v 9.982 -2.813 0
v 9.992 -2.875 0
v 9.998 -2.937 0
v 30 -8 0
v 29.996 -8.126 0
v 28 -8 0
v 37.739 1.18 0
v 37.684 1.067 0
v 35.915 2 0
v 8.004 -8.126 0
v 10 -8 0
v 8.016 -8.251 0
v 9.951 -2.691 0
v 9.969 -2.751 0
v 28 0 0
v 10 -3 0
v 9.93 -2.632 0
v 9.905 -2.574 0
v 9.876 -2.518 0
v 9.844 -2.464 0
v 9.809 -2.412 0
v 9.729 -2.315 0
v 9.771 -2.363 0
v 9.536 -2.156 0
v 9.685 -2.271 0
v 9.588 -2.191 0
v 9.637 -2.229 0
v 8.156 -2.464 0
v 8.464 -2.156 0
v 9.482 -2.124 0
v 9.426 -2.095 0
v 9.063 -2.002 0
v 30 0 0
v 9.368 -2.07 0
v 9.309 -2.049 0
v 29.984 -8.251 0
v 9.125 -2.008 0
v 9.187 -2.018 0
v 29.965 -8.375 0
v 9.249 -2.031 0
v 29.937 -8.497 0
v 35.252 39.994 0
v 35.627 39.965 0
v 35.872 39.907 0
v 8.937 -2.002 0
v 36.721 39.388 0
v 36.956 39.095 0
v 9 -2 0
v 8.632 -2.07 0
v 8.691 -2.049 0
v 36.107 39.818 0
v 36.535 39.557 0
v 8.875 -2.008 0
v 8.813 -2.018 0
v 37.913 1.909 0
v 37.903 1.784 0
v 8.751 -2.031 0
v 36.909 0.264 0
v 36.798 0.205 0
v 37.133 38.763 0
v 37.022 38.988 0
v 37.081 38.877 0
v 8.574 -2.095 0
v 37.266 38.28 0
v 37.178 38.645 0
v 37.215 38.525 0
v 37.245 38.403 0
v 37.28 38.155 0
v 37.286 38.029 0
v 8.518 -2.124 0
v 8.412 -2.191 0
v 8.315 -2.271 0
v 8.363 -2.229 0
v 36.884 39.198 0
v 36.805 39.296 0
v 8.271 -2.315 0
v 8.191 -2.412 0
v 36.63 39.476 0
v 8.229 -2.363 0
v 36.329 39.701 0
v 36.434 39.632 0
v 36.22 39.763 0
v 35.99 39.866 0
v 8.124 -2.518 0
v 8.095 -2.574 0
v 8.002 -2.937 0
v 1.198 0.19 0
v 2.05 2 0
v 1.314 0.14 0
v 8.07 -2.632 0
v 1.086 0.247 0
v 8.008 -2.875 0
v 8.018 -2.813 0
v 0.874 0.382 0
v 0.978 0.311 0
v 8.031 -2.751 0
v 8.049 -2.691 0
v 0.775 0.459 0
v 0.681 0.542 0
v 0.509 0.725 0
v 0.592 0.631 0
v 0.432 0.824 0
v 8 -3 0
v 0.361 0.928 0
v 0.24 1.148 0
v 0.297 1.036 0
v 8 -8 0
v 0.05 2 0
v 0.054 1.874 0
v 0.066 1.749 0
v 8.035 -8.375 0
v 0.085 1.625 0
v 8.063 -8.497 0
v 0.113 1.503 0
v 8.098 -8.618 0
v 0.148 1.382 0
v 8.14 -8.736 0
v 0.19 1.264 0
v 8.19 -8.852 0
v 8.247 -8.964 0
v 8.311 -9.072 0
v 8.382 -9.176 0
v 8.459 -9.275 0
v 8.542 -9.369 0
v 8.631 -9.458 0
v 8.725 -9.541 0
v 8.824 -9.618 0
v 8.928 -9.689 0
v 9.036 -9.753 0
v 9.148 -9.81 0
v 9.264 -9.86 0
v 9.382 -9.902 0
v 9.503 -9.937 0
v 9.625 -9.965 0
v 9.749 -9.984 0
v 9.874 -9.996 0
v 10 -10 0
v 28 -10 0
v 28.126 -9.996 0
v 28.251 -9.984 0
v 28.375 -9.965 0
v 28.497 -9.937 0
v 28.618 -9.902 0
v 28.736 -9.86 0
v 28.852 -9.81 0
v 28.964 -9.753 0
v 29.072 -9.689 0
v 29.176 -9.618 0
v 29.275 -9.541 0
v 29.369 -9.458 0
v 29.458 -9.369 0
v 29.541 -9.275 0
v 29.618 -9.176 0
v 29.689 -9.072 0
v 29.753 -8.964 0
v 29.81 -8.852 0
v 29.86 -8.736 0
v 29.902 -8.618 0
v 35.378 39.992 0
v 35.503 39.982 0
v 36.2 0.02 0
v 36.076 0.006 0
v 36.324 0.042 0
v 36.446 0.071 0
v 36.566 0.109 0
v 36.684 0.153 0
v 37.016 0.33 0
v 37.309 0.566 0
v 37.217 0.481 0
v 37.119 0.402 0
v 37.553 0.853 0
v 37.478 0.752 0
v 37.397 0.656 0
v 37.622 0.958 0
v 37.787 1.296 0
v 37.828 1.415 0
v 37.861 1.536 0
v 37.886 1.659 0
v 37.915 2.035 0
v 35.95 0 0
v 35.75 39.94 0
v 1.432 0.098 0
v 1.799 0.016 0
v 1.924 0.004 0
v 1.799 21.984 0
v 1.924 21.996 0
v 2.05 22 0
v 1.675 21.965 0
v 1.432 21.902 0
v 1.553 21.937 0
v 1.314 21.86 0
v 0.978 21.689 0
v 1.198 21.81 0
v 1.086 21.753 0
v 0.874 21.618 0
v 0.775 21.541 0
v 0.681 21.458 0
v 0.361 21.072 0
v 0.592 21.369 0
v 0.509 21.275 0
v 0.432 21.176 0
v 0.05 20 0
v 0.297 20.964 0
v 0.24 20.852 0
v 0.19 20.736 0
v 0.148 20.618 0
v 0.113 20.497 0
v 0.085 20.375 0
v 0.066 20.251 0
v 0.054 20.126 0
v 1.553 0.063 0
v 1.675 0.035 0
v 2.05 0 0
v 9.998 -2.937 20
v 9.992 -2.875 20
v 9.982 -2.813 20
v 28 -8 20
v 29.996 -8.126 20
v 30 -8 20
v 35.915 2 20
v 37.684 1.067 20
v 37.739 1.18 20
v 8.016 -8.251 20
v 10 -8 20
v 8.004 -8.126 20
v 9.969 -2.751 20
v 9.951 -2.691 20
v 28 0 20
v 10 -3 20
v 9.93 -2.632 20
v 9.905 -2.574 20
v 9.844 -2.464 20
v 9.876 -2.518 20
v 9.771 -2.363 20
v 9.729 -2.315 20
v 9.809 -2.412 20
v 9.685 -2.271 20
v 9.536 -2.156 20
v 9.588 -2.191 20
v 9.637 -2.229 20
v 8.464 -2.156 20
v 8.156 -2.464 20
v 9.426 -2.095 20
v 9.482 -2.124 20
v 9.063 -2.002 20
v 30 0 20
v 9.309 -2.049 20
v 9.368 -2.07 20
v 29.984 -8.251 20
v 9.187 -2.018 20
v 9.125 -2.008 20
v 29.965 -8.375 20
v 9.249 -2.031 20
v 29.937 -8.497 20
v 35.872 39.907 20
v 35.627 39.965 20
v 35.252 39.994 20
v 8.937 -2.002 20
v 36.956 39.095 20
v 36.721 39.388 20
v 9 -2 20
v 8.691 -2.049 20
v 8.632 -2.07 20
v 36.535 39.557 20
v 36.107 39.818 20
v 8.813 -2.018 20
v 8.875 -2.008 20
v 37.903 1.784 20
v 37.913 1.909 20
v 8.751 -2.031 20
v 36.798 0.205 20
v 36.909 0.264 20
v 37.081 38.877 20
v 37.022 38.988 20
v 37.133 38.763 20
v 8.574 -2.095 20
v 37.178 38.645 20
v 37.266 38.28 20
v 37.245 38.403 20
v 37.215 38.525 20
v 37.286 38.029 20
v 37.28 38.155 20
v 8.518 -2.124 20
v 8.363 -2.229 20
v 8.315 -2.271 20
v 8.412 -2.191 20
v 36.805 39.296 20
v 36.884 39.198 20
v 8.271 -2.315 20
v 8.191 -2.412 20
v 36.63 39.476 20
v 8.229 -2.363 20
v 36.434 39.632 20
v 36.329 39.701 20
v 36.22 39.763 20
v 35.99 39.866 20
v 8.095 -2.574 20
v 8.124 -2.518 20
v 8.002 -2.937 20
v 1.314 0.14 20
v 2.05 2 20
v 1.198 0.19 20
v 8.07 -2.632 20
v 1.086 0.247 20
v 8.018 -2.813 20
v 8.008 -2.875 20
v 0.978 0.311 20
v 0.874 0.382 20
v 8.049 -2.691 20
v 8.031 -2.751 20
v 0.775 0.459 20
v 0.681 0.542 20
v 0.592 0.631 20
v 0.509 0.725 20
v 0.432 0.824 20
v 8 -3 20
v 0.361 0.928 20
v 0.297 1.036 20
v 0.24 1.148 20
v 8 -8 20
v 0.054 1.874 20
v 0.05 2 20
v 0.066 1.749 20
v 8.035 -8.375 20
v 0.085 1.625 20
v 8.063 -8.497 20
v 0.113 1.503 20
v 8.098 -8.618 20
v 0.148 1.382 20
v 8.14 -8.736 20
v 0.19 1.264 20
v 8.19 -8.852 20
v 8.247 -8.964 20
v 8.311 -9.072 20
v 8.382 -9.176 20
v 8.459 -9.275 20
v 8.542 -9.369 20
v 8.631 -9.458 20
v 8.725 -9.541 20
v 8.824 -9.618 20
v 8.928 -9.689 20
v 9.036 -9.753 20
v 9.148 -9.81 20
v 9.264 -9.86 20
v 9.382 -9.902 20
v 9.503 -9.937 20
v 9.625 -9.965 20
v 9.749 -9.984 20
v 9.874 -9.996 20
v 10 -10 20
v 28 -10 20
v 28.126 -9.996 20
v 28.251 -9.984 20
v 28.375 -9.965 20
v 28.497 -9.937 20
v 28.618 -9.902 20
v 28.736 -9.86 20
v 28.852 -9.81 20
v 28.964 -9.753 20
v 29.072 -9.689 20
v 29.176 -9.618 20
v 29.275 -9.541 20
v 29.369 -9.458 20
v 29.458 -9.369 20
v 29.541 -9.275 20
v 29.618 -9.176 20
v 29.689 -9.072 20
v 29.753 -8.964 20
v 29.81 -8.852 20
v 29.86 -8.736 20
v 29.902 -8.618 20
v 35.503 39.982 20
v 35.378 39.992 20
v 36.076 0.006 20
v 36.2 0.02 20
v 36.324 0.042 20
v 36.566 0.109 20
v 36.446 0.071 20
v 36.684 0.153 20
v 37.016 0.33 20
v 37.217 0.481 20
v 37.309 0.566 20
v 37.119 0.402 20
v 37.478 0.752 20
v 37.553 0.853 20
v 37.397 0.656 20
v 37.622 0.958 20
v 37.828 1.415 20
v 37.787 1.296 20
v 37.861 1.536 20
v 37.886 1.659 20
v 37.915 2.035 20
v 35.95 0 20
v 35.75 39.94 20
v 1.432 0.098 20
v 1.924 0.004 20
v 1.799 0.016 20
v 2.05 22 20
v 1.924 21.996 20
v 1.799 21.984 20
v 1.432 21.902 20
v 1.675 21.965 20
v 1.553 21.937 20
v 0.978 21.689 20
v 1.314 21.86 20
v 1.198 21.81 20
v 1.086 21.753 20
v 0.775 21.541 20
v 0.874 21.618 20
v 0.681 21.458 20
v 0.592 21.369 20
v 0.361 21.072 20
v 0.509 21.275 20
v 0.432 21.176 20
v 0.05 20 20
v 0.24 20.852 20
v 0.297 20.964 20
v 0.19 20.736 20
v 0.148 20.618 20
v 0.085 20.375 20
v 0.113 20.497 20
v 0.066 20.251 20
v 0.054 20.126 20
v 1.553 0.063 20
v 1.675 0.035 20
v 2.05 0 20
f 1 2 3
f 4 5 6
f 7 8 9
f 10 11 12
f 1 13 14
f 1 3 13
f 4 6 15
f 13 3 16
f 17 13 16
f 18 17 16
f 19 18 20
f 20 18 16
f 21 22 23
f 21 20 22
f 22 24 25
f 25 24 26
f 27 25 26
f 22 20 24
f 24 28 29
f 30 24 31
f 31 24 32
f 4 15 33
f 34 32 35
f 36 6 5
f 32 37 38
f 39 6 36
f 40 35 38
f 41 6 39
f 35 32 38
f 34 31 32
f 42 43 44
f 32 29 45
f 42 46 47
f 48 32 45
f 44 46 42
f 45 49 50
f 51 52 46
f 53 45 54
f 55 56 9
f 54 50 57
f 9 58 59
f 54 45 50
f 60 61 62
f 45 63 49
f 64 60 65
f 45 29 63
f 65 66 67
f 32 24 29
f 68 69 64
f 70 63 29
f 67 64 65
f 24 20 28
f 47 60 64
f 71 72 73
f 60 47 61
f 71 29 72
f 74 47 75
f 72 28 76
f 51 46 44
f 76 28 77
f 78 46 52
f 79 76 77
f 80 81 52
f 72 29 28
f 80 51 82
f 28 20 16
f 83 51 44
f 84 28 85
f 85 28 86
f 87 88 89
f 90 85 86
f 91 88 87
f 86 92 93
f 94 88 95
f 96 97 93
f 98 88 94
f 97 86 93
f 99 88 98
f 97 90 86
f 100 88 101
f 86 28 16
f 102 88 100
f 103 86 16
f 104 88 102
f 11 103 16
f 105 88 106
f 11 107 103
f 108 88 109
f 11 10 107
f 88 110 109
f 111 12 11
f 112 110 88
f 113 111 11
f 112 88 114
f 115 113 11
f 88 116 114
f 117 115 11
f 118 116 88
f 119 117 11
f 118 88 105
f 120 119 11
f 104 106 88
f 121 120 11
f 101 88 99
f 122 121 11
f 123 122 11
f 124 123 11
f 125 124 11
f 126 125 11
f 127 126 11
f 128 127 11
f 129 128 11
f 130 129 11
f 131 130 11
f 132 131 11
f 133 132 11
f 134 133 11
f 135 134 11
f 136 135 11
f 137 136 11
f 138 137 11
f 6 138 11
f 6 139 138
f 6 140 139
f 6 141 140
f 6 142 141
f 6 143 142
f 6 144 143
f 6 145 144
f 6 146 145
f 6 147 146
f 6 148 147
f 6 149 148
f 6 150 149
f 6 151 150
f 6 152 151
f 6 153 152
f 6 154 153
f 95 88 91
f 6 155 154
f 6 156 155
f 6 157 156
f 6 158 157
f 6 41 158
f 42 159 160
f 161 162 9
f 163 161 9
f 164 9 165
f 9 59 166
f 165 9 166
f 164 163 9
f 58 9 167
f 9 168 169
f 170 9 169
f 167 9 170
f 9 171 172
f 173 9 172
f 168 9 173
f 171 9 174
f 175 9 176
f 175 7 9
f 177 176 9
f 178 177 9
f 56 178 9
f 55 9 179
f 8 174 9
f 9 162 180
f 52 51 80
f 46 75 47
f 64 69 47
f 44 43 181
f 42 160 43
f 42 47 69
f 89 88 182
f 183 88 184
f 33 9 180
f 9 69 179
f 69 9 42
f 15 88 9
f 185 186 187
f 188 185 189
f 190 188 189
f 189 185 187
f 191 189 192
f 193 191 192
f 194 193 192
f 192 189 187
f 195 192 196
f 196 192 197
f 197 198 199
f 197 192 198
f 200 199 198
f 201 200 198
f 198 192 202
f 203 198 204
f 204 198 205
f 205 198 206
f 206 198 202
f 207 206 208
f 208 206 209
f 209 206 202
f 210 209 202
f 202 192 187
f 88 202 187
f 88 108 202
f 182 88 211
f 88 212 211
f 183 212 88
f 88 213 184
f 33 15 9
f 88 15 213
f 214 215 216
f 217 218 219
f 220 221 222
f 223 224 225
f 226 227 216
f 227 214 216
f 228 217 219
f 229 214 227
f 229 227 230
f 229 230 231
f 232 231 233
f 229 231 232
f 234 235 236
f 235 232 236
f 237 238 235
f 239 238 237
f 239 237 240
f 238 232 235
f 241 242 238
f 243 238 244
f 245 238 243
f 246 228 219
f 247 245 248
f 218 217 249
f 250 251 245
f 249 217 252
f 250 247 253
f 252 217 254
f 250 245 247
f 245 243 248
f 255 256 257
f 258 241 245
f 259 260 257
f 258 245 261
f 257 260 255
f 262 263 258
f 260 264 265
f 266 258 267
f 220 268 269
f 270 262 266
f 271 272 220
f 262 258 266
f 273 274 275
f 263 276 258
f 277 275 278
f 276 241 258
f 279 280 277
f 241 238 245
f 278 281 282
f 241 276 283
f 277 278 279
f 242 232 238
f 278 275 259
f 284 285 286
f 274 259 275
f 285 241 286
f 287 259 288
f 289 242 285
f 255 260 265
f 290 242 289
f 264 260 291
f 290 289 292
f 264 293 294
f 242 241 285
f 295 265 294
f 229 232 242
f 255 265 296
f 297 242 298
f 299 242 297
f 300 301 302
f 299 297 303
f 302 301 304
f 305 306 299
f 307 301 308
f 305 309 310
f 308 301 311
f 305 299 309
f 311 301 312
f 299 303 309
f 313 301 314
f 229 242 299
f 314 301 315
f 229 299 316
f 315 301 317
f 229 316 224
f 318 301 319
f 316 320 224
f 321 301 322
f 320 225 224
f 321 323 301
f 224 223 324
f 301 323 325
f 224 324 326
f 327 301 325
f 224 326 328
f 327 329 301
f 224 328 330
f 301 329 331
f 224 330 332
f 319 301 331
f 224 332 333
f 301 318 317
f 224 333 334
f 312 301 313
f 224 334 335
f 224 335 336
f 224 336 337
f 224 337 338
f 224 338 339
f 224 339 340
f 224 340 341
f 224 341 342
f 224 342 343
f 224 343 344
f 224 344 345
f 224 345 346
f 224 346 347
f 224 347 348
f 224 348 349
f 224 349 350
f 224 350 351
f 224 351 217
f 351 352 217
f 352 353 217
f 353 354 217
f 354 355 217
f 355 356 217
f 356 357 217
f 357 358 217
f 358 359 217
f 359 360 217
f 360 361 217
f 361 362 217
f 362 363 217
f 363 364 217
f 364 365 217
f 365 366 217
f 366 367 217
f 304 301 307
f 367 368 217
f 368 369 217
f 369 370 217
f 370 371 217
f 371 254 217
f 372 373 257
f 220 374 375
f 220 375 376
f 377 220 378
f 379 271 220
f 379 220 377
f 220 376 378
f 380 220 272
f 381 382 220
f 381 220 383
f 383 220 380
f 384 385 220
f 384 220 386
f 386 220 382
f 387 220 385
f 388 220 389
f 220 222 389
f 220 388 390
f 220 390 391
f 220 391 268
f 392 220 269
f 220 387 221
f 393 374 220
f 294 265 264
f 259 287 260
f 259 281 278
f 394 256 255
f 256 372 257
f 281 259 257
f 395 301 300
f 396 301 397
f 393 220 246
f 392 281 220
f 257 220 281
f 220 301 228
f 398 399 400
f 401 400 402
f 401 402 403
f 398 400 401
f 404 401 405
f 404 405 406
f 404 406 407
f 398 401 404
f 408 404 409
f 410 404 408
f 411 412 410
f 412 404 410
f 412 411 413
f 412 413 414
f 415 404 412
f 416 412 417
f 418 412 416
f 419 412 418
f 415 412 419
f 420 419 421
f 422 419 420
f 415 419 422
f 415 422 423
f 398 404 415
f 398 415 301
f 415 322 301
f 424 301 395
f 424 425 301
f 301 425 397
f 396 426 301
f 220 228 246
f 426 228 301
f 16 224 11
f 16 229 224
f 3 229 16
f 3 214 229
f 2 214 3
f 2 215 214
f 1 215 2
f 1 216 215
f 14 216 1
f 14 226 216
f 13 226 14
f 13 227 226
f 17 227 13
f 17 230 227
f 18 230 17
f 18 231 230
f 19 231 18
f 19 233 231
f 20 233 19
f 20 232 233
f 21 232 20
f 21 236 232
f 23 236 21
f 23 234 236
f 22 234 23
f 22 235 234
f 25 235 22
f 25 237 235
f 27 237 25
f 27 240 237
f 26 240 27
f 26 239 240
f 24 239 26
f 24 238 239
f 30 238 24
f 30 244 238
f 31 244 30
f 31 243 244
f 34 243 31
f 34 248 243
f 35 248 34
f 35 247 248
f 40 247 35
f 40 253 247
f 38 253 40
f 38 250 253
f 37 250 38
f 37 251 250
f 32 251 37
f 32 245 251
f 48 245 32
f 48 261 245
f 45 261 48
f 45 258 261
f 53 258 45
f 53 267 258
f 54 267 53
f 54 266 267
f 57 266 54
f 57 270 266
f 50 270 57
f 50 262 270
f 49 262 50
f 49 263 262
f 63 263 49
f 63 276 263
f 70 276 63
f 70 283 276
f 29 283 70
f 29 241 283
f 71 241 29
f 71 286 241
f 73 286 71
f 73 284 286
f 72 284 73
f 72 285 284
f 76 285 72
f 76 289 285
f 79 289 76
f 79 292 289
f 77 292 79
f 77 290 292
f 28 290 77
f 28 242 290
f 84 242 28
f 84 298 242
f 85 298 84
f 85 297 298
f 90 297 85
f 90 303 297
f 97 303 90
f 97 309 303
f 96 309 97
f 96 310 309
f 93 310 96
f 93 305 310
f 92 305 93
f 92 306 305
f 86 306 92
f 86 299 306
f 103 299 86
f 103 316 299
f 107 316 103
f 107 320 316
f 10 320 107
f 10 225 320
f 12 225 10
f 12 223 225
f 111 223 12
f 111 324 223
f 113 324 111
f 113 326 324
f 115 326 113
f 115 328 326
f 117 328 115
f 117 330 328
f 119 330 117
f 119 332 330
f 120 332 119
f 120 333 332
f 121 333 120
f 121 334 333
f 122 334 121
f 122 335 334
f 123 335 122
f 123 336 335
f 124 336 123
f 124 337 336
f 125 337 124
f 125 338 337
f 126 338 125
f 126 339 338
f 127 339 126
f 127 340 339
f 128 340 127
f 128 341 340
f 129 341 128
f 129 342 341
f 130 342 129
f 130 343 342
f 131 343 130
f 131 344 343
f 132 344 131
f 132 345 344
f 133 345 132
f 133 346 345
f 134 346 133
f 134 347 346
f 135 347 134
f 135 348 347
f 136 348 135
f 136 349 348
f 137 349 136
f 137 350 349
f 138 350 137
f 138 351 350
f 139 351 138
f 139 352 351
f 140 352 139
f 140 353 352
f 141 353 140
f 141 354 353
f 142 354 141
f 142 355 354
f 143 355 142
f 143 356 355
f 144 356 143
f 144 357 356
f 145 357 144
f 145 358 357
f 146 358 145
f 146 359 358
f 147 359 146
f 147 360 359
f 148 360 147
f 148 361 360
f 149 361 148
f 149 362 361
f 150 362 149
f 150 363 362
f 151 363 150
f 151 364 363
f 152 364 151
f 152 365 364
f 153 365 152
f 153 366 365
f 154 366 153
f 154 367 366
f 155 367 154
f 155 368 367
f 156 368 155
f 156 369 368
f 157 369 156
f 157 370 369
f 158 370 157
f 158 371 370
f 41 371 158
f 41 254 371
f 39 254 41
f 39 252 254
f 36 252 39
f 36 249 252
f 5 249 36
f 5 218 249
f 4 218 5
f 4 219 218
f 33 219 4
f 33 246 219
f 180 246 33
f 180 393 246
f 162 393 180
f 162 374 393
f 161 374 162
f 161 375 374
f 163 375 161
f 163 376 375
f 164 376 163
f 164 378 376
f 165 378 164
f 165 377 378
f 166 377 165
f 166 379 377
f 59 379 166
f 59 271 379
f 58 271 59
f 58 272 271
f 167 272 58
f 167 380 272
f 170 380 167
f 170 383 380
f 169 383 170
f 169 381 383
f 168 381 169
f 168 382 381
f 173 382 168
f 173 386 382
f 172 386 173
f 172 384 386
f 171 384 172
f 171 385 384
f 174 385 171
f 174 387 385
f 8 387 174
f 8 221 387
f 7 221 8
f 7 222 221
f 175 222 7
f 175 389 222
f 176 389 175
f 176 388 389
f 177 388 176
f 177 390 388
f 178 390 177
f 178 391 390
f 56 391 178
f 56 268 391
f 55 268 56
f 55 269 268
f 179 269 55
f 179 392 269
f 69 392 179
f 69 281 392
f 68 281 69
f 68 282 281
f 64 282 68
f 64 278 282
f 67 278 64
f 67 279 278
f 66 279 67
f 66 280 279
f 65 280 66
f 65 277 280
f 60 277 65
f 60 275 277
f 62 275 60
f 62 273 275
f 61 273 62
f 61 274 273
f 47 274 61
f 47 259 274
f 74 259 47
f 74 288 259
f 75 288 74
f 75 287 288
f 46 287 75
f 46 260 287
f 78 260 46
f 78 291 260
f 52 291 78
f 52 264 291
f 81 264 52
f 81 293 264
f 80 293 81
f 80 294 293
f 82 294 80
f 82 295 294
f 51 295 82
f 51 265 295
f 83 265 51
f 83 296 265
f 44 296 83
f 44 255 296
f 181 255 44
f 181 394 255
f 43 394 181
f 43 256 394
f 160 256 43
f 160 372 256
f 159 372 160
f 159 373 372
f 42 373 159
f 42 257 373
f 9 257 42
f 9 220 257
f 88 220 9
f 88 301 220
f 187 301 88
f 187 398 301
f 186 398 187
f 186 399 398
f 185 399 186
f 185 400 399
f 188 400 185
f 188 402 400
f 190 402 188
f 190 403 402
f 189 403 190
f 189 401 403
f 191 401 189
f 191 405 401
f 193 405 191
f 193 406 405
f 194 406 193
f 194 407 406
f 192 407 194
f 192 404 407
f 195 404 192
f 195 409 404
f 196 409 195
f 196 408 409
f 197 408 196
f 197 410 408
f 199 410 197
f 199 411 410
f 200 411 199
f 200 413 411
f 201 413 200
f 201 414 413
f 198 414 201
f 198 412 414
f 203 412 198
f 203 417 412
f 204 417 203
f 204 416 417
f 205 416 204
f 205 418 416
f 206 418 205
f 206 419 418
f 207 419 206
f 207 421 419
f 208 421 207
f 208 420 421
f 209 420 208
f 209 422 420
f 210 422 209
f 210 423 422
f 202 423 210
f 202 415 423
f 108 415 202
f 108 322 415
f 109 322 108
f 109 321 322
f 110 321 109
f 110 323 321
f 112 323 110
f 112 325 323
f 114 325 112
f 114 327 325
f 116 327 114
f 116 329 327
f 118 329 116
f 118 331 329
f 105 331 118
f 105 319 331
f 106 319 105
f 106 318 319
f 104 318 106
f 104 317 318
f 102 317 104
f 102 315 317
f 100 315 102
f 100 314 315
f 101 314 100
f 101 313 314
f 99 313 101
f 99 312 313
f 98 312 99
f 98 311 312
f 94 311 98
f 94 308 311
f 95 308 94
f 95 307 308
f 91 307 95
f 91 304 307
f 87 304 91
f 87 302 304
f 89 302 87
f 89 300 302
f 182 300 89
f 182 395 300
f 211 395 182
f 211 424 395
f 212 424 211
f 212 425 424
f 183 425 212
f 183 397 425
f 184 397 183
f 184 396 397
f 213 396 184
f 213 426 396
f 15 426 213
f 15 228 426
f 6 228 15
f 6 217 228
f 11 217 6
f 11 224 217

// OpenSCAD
// file: base.scad
// Height: 34
$fn = 100;
TIGHTNESS = .05;

linear_extrude(20)
bracket();

module bracket() {
  translate([TIGHTNESS, 0, 0])
  difference() {
    square([2, 22]);
    fillet();

    translate([0, 22, 0])
    rotate(270)
    fillet();
  }

  translate([2 + TIGHTNESS, 0, 0])
  square([34 - 2 * TIGHTNESS, 2]);

  translate([36 - TIGHTNESS, 0, 0])
  rotate(1)
  difference() {
    square([2, 40]);

    translate([2, 0, 0])
    rotate(90)
    fillet();

    translate([2, 40, 0])
    rotate(180)
    fillet();
  }
}

module fillet() {
  difference() {
    square(4, center=true);

    translate([2, 2, 0])
    circle(2);
  }
}
// main file
$fn = 100;

use <base.scad>;

WIDTH = 18;
DEPTH = 10;
FLANGE = DEPTH - 3;

linear_extrude(20) {
  bracket();

  translate([19 - WIDTH/2, -DEPTH, 0]) {
    square([WIDTH, 2]);

    difference() {
      rotate(90)
      union() {
        square([FLANGE, 2]);

        translate([FLANGE, 1, 0])
        circle(d = 2);
      }

      translate([-2, 0, 0])
      fillet();
    }

    translate([WIDTH + 2, 0, 0])
    rotate(90)
    difference() {
      square([DEPTH, 2]);
      fillet();
    }
  }
}
